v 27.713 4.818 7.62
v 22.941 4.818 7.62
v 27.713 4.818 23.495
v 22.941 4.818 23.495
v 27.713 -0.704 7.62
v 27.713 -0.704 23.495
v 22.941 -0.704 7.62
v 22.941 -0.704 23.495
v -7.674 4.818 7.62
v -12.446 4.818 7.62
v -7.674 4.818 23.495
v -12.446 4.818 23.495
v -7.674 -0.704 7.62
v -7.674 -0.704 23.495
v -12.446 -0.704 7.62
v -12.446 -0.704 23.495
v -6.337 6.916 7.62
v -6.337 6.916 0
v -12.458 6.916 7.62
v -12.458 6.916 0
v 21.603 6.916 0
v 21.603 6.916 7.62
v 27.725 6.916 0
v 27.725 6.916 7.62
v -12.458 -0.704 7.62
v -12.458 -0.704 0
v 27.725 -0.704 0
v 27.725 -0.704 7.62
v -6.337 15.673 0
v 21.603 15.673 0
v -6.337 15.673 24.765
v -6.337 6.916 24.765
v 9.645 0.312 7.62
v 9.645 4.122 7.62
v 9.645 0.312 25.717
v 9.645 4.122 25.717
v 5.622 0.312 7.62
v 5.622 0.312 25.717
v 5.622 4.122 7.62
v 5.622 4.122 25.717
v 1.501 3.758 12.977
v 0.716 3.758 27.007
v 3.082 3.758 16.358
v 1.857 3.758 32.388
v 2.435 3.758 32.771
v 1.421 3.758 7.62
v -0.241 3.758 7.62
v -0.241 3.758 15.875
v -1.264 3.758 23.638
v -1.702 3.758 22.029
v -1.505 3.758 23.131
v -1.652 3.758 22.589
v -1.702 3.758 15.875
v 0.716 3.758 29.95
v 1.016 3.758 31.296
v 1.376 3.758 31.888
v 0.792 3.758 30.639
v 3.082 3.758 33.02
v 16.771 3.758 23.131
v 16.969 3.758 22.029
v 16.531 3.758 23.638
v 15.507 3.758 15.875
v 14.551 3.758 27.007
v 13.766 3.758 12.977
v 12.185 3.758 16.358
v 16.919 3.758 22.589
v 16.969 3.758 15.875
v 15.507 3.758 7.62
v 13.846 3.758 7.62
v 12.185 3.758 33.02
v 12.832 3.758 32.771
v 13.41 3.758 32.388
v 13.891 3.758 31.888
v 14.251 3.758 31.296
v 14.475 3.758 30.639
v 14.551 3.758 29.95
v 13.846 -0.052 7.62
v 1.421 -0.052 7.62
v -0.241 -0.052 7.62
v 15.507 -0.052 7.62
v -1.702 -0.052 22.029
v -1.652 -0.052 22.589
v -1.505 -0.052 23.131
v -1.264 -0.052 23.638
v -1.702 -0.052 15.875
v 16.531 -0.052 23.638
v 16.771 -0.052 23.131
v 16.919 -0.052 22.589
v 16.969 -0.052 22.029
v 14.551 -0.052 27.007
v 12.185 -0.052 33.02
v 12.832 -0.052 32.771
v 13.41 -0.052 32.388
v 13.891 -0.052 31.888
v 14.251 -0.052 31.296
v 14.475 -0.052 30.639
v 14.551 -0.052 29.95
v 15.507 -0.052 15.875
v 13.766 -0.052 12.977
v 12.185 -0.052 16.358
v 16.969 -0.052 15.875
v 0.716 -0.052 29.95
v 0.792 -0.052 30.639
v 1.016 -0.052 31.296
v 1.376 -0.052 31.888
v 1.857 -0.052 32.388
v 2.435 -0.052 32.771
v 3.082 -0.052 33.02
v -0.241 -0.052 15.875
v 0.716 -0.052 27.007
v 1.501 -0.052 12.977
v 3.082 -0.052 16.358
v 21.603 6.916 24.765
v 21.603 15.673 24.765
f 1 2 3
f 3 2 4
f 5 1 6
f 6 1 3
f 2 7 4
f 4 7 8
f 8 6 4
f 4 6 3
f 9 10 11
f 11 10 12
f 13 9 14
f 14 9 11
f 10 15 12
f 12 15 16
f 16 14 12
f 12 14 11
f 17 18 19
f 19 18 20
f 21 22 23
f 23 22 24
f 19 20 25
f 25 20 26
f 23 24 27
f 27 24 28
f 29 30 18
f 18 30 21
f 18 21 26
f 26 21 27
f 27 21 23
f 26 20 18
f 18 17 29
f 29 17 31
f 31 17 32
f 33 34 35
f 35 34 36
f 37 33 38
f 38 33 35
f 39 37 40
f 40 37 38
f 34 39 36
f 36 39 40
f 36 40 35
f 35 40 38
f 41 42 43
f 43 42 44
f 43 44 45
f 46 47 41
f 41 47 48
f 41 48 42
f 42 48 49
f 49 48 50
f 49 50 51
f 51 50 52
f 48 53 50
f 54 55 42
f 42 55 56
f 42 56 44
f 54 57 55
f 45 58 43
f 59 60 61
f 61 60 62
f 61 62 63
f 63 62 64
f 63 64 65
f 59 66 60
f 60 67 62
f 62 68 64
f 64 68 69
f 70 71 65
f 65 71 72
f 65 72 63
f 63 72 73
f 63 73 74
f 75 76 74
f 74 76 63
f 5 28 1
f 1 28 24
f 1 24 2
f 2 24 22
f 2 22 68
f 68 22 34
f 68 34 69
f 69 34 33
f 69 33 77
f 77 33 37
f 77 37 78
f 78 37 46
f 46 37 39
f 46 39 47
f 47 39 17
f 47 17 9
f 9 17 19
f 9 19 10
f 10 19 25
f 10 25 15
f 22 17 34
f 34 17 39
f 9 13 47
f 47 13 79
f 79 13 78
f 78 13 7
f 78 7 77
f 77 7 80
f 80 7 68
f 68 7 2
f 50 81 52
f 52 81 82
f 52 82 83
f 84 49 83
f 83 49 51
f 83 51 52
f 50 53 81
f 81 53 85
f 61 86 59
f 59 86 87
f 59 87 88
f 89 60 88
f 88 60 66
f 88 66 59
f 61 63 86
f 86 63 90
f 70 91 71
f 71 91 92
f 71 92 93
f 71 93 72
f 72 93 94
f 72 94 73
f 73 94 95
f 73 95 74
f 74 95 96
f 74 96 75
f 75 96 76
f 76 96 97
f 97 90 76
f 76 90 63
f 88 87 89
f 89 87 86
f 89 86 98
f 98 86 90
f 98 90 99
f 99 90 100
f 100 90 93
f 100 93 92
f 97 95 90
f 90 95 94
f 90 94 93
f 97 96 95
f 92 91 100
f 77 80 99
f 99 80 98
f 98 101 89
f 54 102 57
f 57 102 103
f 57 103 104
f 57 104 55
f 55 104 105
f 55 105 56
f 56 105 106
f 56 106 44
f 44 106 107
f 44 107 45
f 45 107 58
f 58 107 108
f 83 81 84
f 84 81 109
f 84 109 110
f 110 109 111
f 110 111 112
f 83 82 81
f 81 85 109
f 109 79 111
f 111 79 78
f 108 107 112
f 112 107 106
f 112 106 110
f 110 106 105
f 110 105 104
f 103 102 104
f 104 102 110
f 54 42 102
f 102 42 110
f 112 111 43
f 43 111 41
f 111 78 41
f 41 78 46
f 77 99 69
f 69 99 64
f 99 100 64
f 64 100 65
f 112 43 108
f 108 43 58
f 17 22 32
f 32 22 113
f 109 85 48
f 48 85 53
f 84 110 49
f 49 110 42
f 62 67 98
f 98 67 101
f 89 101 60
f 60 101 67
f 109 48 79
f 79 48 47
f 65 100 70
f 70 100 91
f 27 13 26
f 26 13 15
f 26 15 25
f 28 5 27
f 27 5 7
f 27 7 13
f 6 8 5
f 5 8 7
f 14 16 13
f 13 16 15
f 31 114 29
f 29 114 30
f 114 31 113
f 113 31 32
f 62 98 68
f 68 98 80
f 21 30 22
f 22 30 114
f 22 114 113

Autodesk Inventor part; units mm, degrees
ref_plane "YZ Plane" through (0, 0, 0) normal (1, 0, 0) x (0, 1, 0)
ref_plane "XZ Plane" through (0, 0, 0) normal (0, 1, 0) x (-1, 0, 0)
ref_plane "XY Plane" through (0, 0, 0) normal (0, 0, 1) x (1, 0, 0)
sketch "Sketch1" plane through (0, 0, 0) normal (0, 0, 1) x (1, 0, 0)
  line L0 (-6.3366, 6.9163) -> (21.6034, 6.9163)
  line L1 (21.6034, 6.9163) -> (21.6034, -8.3237)
  line L2 (21.6034, -8.3237) -> (-6.3366, -8.3237)
  line L3 (-6.3366, -8.3237) -> (-6.3366, 6.9163)
  point P0 (0, 0)
  dimension "d0" = 27.94
  dimension "d1" = 15.24
extrude "Extrusion1" add sketch "Sketch1" along normal blind 7.62
sketch "Sketch2" plane through (0, 0, 7.62) normal (0, 0, 1) x (1, 0, 0)
  line L0 (-6.3366, 6.9163) -> (-6.3366, -8.3237) projected
  line L1 (21.6034, -8.3237) -> (21.6034, 6.9163) projected
  line L2 (21.6034, -0.052) -> (21.6034, 2.361)
  line L3 (-6.3366, 2.361) -> (-6.3366, -0.052)
  line L4 (21.6034, 6.9163) -> (-6.3366, 6.9163) projected
  line L5 (-6.3366, -8.3237) -> (21.6034, -8.3237) projected
  line L6 (0.9631, 2.361) -> (-0.2406, 2.361)
  line L7 (-0.2406, -0.052) -> (0.9631, -0.052)
  line L8 (-0.2406, -0.052) -> (-0.2406, 2.361)
  line L9 (-0.2406, -0.052) -> (3.0821, -0.052)
  line L10 (3.0821, -0.052) -> (3.0821, 2.361)
  line L11 (3.0821, 2.361) -> (-0.2406, 2.361)
  line L12 (-0.2406, 2.361) -> (-0.2406, -0.052)
  line L13 (14.3038, 2.361) -> (15.5074, 2.361)
  line L14 (15.5074, -0.052) -> (14.3038, -0.052)
  line L15 (15.5074, -0.052) -> (15.5074, 2.361)
  line L16 (15.5074, -0.052) -> (12.1847, -0.052)
  line L17 (12.1847, -0.052) -> (12.1847, 2.361)
  line L18 (12.1847, 2.361) -> (15.5074, 2.361)
  line L19 (15.5074, 2.361) -> (15.5074, -0.052)
  line L20 (-6.3366, -0.7037) -> (21.6034, -0.7037)
  line L21 (-6.3366, 2.361) -> (21.6034, 2.361)
  line L22 (21.6034, 2.361) -> (21.6034, -0.052)
  line L23 (21.6034, -0.052) -> (-6.3366, -0.052)
  line L24 (-6.3366, -0.052) -> (-6.3366, 2.361)
  point P0 (0, 0)
  point P1 (-0.2406, 1.1545)
  point P2 (15.2669, -0.3643)
  point P3 (15.5074, 1.1545)
  point P4 (15.5074, -0.052)
  point P5 (21.6034, -0.052)
  point P6 (15.5074, 2.361)
  point P7 (-6.3366, -0.052)
  point P8 (-0.2406, -0.052)
  point P9 (-0.2406, 2.361)
  point P10 (-6.3366, 2.361)
  point P11 (3.0821, -0.052)
  point P12 (12.1847, -0.052)
  point P13 (12.1847, 2.361)
  point P14 (3.0821, 2.361)
  dimension "d6" = 6.096
extrude "Extrusion2" add sketch "Sketch2" along normal blind 8.7376 contours L6 L11 L10 L9 L7 L8 | L15 L14 L16 L17 L18 L13
sketch "Sketch3" plane through (-0.2406, 2.361, 7.62) normal (0, 1, 0) x (1, 0, 0)
  line L0 (3.3227, -8.7376) -> (0, -8.7376) projected
  line L1 (-6.096, 7.62) -> (21.844, 7.62) projected
  line L2 (3.3227, -11.3552) -> (3.3227, -8.7376)
  line L3 (12.4253, -11.3552) -> (12.4253, -8.7376)
  line L4 (17.2091, -8.255) -> (17.2091, -15.2732)
  line L5 (17.2091, -15.2732) -> (14.9854, -19.057)
  line L6 (14.9854, -19.057) -> (12.4253, -19.057)
  line L7 (12.4253, -19.057) -> (12.4253, -8.7376)
  line L8 (7.874, 7.62) -> (7.874, -24.8322)
  line L9 (3.3227, -11.3552) -> (3.3227, -8.7376)
  line L10 (-1.4611, -8.255) -> (-1.4611, -15.2732)
  line L11 (-1.4611, -15.2732) -> (0.7626, -19.057)
  line L12 (0.7626, -19.057) -> (3.3227, -19.057)
  line L13 (3.3227, -19.057) -> (3.3227, -8.7376)
  line L14 (17.2091, -8.255) -> (12.4253, -8.255)
  line L15 (12.4253, 0) -> (12.4253, -8.7376) projected
  line L16 (12.4253, -8.255) -> (12.4253, -8.7376)
  line L17 (-1.4611, -8.255) -> (3.3227, -8.255)
  line L18 (3.3227, 0) -> (3.3227, -8.7376) projected
  line L19 (3.3227, -8.255) -> (3.3227, -8.7376)
  point P0 (0.2406, 7.62)
extrude "Extrusion4" add sketch "Sketch2" along normal blind 25.4 contours L6 L11 L10 L9 L7 L8 | L15 L14 L16 L17 L18 L13
sketch "Sketch4" plane through (-6.3366, 6.9163, 0) normal (0, 1, 0) x (1, 0, 0)
  point P0 (6.3366, 0)
sketch "Sketch5" plane through (0, 0, 7.62) normal (0, 0, 1) x (1, 0, 0)
  line L0 (21.6034, 6.9163) -> (-6.3366, 6.9163) projected
  line L1 (-6.3366, 15.6735) -> (21.6034, 15.6735)
  line L2 (21.6034, 15.6735) -> (21.6034, 6.9163)
  line L3 (21.6034, 6.9163) -> (-6.3366, 6.9163)
  line L4 (-6.3366, 6.9163) -> (-6.3366, 15.6735)
  point P0 (0, 0)
extrude "Extrusion5" add sketch "Sketch5" along normal blind 17.145 and the other way blind 7.62
extrude "Extrusion6" cut sketch "Sketch2" against normal blind 25.4 contours L20 L1 L5 L0
extrude "Extrusion7" add sketch "Sketch2" along normal blind 4.7625 contours L21 L8 L23 L0 | L1 L23 L15 L21 | L21 L17 L23 L10
extrude "Extrusion8" add sketch "Sketch3" against normal up to surface (2.413 mm away)
sketch "Sketch6" plane through (-6.3366, -0.052, 7.62) normal (0, -1, 0) x (1, 0, 0)
  line L0 (27.94, 0) -> (27.94, 4.7625) projected
  line L1 (21.844, 4.7625) -> (21.844, 8.255) projected
  line L2 (27.94, 0) -> (21.844, 0)
  line L3 (21.844, 0) -> (21.844, 4.7625)
  line L4 (21.844, 4.7625) -> (27.94, 4.7625)
  line L5 (27.94, 4.7625) -> (27.94, 0)
  line L6 (18.5213, 4.7625) -> (18.5213, 25.4) projected
  line L7 (18.5213, 4.7625) -> (9.4187, 4.7625)
  line L8 (9.4187, 4.7625) -> (9.4187, 0)
  line L9 (9.4187, 0) -> (18.5213, 0)
  line L10 (18.5213, 0) -> (18.5213, 4.7625)
  line L11 (6.096, 4.7625) -> (6.096, 8.255) projected
  line L12 (0, 0) -> (0, 4.7625) projected
  line L13 (6.096, 4.7625) -> (0, 4.7625)
  line L14 (0, 4.7625) -> (0, 0)
  line L15 (0, 0) -> (6.096, 0)
  line L16 (6.096, 0) -> (6.096, 4.7625)
  point P0 (6.3366, -7.62)
  point P1 (21.844, 8.7376)
  point P2 (18.5213, 19.057)
  point P3 (6.096, 8.7376)
extrude "Extrusion9" cut sketch "Sketch6" against normal up to surface (6.9683 mm away)
sketch "Sketch7" plane through (12.1847, -0.052, 7.62) normal (0, -1, 0) x (1, 0, 0)
  line L0 (3.3227, 17.7594) -> (4.7838, 15.2732) projected
  line L1 (3.3227, 17.7594) -> (2.3659, 19.3874)
  line L2 (2.3659, 19.3874) -> (2.3659, 25.4)
  line L3 (3.3227, 25.4) -> (0, 25.4) projected
  line L4 (3.3227, 17.7594) -> (3.3227, 25.4) projected
  line L5 (2.3659, 25.4) -> (3.3227, 25.4)
  line L6 (3.3227, 25.4) -> (3.3227, 17.7594)
  line L7 (-18.5213, -7.62) -> (9.4187, -7.62) projected
  line L8 (-12.4253, 17.7594) -> (-11.4685, 19.3874)
  line L9 (-11.4685, 19.3874) -> (-11.4685, 25.4)
  line L10 (-12.4253, 17.7594) -> (-12.4253, 25.4)
  line L11 (-11.4685, 25.4) -> (-12.4253, 25.4)
  line L12 (-12.4253, 25.4) -> (-12.4253, 17.7594)
  line L13 (-12.4253, 8.7376) -> (-13.8865, 8.255) projected
  line L14 (-9.1825, 8.7376) -> (-9.1026, 8.7376)
  line L15 (-9.1026, 0) -> (-9.1026, 25.4) projected
  line L16 (-10.6842, 5.3569) -> (-10.764, 0)
  line L17 (-9.1026, 0) -> (-12.4253, 0) projected
  line L18 (-9.1026, 0) -> (-9.1026, 8.7376)
  line L19 (-10.764, 0) -> (-9.1026, 0)
  line L20 (9.4187, -7.62) -> (-18.5213, -7.62) projected
  line L21 (-18.5213, 17.145) -> (9.4187, 17.145) projected
  line L22 (1.5816, 5.3569) -> (1.6613, 0)
  line L23 (1.6613, 0) -> (0, 0)
  line L24 (0, 0) -> (0, 8.7376)
  line L25 (-4.5513, -7.62) -> (-4.5513, 0)
  line L26 (-4.5513, 11.274) -> (-4.5513, 11.3382)
  line L27 (-9.1026, 8.7376) -> (-10.6842, 5.3569)
  line L28 (0, 8.7376) -> (1.5816, 5.3569)
  point P0 (-12.1847, -7.62)
extrude "Extrusion10" cut sketch "Sketch7" against normal up to surface (6.9683 mm away)
fillet "Fillet1" radius 3.175 4 edges at (0.7162, 1.1545, 33.02) (14.5507, 1.1545, 33.02) (16.9686, 1.1545, 22.8932) (-1.7017, 1.1545, 22.8932)
sketch "Sketch8" plane through (-0.2406, -0.052, 7.62) normal (0, -1, 0) x (1, 0, 0)
  arc A0 (-1.0234, 16.018) -> (-1.4611, 14.4093) centre (1.7139, 14.4093) ccw projected
  line L0 (-1.4611, 8.255) -> (-1.4611, 14.4093) projected
  line L1 (0, 0) -> (0, 8.255) projected
  line L2 (1.6613, 0) -> (0, 0) projected
  line L3 (1.6613, 0) -> (1.7411, 5.3569) projected
  line L4 (1.7411, 5.3569) -> (3.3227, 8.7376) projected
  line L5 (3.3227, 8.7376) -> (3.3227, 25.4) projected
  arc A1 (3.3227, 25.4) -> (0.9568, 22.3298) centre (4.1318, 22.3298) ccw projected
  line L6 (0.9568, 22.3298) -> (0.9568, 19.3874) projected
  line L7 (0.9568, 19.3874) -> (-1.0234, 16.018) projected
  arc A2 (17.2091, 14.4093) -> (16.7714, 16.018) centre (14.0341, 14.4093) ccw projected
  line L8 (16.7714, 16.018) -> (14.7912, 19.3874) projected
  line L9 (14.7912, 19.3874) -> (14.7912, 22.3298) projected
  arc A3 (14.7912, 22.3298) -> (12.4253, 25.4) centre (11.6162, 22.3298) ccw projected
  line L10 (12.4253, 8.7376) -> (12.4253, 25.4) projected
  line L11 (12.4253, 8.7376) -> (14.0069, 5.3569) projected
  line L12 (14.0069, 5.3569) -> (14.0867, 0) projected
  line L13 (15.748, 0) -> (14.0867, 0) projected
  line L14 (15.748, 0) -> (15.748, 8.255) projected
  line L15 (17.2091, 14.4093) -> (17.2091, 8.255) projected
  line L16 (17.2091, 8.255) -> (15.748, 8.255) projected
  line L17 (0, 8.255) -> (-1.4611, 8.255) projected
  point P0 (0.2406, -7.62)
extrude "Extrusion11" add sketch "Sketch8" against normal blind 3.81
sketch "Sketch9" plane through (0, 0, 7.62) normal (0, 0, 1) x (1, 0, 0)
  line L0 (9.6447, 0.3123) -> (5.6221, 0.3123)
  line L1 (5.6221, 0.3123) -> (5.6221, 4.1223)
  line L2 (5.6221, 4.1223) -> (9.6447, 4.1223)
  line L3 (9.6447, 4.1223) -> (9.6447, 0.3123)
  line L4 (12.1847, -0.052) -> (12.1847, 3.758) projected
  line L5 (3.0821, -0.052) -> (3.0821, 3.758) projected
  point P0 (0, 0)
  dimension "d30" = 2.54
  dimension "d31" = 2.54
extrude "Extrusion12" add sketch "Sketch9" along normal blind 18.0975
sketch "Sketch10" plane through (21.6034, 6.9163, 24.765) normal (1, 0, 0) x (0, 0, -1)
  line L0 (17.145, 0) -> (0, 0) projected
  line L1 (24.765, -7.62) -> (17.145, -7.62) projected
  line L2 (17.145, 0) -> (24.765, 0)
  line L3 (24.765, 0) -> (24.765, -7.62)
  line L4 (24.765, -7.62) -> (17.145, -7.62)
  line L5 (17.145, -7.62) -> (17.145, 0)
  point P0 (24.765, -6.9163)
extrude "Extrusion13" add sketch "Sketch10" along normal blind 6.1214 and the other way blind 34.0614
sketch "Sketch11" plane through (0, 0, 7.62) normal (0, 0, 1) x (1, 0, 0)
  line L0 (21.6034, 15.6735) -> (-6.3366, 15.6735) projected
  line L1 (9.6447, 0.3123) -> (5.6221, 0.3123) projected
  line L2 (-12.458, -0.7037) -> (-12.458, 6.9163) projected
  line L3 (-12.458, -0.7037) -> (27.7248, -0.7037) projected
  line L4 (-11.1046, -0.7037) -> (-12.458, -0.7037)
  line L5 (-12.458, -0.7037) -> (-12.458, 4.1961)
  line L6 (21.6034, -0.7037) -> (27.7131, -0.7037)
  line L7 (27.7131, -0.7037) -> (27.7131, 4.8182)
  line L8 (27.7131, 4.8182) -> (22.941, 4.8182)
  line L9 (21.6034, 4.8182) -> (21.6034, -0.7037)
  line L10 (-6.3366, -0.7037) -> (-12.4462, -0.7037)
  line L11 (-12.4462, -0.7037) -> (-12.4462, 4.8182)
  line L12 (-12.4462, 4.8182) -> (-7.6742, 4.8182)
  line L13 (-6.3366, 4.8182) -> (-6.3366, -0.7037)
  line L14 (21.6034, 6.9163) -> (27.7248, 6.9163) projected
  line L15 (22.941, 4.8182) -> (22.941, -0.7037)
  line L16 (7.6334, 0.3123) -> (7.6334, -0.7037)
  line L17 (-7.6742, 4.8182) -> (-7.6742, -0.7037)
  point P0 (0, 0)
  point P1 (22.941, 6.9163)
  point P2 (-7.6742, 6.9163)
  point P3 (-7.6742, -0.7037)
extrude "Extrusion14" add sketch "Sketch11" along normal blind 15.875
properties part number "Attachment6"
